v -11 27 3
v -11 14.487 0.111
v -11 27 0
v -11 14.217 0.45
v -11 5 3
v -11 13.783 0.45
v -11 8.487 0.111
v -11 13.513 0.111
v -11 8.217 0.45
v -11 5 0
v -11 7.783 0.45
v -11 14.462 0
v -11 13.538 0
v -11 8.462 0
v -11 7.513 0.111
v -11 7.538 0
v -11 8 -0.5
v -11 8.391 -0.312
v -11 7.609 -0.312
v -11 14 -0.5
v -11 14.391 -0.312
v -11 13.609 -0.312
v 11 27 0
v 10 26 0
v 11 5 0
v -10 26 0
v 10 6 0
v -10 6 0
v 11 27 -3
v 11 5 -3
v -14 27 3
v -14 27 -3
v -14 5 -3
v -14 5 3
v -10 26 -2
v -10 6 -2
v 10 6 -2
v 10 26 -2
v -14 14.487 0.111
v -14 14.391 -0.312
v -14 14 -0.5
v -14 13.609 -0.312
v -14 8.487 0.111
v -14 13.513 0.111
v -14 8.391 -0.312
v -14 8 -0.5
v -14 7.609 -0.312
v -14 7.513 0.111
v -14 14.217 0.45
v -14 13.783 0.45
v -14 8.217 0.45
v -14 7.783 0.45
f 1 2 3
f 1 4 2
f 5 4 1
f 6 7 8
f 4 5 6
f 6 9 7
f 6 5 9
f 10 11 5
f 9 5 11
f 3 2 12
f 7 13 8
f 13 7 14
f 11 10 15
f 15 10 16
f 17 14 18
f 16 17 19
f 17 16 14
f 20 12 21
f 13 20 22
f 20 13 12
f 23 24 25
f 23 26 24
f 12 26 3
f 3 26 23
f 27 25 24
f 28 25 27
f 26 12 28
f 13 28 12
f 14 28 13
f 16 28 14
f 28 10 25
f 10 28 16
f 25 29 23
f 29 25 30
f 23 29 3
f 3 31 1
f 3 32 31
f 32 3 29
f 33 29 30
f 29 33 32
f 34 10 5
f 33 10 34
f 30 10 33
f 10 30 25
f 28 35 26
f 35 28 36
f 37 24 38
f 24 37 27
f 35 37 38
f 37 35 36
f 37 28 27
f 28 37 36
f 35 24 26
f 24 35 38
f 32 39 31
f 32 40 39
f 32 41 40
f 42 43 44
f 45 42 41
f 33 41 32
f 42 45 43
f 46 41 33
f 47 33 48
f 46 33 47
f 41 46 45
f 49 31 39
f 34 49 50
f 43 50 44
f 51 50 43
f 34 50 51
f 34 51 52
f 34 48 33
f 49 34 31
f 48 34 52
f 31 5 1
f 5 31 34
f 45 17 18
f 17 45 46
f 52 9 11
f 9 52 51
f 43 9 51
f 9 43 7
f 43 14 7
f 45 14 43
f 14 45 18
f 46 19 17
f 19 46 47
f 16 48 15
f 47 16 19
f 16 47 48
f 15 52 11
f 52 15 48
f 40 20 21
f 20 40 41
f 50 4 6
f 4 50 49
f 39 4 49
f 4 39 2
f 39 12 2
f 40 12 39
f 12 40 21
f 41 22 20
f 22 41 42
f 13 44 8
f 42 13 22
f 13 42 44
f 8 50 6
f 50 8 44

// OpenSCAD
plateXX=20;
plateYY=20;
thickness=1;
foamThickness=2;
$fs=0.5;
$fa=2;

union(){
    difference() {
        translate([-plateXX/2-thickness,5,-(thickness+foamThickness)])cube([plateXX+2*thickness,plateYY+2*thickness,thickness+foamThickness]);
        translate([-plateXX/2,5+thickness,-foamThickness])cube([plateXX,plateYY,thickness+foamThickness]);
    }
    
    difference(){
        translate([-3-plateXX/2-thickness,5,-(thickness+foamThickness)])cube([3,plateYY+2*thickness,2*(thickness+foamThickness)]);
        //14, 8
        translate([-plateXX/2-thickness,8,0])rotate([0,90,0])cylinder(d=1,h=3*3,center=true);
        translate([-plateXX/2-thickness,14,0])rotate([0,90,0])cylinder(d=1,h=3*3,center=true);
    }
}
